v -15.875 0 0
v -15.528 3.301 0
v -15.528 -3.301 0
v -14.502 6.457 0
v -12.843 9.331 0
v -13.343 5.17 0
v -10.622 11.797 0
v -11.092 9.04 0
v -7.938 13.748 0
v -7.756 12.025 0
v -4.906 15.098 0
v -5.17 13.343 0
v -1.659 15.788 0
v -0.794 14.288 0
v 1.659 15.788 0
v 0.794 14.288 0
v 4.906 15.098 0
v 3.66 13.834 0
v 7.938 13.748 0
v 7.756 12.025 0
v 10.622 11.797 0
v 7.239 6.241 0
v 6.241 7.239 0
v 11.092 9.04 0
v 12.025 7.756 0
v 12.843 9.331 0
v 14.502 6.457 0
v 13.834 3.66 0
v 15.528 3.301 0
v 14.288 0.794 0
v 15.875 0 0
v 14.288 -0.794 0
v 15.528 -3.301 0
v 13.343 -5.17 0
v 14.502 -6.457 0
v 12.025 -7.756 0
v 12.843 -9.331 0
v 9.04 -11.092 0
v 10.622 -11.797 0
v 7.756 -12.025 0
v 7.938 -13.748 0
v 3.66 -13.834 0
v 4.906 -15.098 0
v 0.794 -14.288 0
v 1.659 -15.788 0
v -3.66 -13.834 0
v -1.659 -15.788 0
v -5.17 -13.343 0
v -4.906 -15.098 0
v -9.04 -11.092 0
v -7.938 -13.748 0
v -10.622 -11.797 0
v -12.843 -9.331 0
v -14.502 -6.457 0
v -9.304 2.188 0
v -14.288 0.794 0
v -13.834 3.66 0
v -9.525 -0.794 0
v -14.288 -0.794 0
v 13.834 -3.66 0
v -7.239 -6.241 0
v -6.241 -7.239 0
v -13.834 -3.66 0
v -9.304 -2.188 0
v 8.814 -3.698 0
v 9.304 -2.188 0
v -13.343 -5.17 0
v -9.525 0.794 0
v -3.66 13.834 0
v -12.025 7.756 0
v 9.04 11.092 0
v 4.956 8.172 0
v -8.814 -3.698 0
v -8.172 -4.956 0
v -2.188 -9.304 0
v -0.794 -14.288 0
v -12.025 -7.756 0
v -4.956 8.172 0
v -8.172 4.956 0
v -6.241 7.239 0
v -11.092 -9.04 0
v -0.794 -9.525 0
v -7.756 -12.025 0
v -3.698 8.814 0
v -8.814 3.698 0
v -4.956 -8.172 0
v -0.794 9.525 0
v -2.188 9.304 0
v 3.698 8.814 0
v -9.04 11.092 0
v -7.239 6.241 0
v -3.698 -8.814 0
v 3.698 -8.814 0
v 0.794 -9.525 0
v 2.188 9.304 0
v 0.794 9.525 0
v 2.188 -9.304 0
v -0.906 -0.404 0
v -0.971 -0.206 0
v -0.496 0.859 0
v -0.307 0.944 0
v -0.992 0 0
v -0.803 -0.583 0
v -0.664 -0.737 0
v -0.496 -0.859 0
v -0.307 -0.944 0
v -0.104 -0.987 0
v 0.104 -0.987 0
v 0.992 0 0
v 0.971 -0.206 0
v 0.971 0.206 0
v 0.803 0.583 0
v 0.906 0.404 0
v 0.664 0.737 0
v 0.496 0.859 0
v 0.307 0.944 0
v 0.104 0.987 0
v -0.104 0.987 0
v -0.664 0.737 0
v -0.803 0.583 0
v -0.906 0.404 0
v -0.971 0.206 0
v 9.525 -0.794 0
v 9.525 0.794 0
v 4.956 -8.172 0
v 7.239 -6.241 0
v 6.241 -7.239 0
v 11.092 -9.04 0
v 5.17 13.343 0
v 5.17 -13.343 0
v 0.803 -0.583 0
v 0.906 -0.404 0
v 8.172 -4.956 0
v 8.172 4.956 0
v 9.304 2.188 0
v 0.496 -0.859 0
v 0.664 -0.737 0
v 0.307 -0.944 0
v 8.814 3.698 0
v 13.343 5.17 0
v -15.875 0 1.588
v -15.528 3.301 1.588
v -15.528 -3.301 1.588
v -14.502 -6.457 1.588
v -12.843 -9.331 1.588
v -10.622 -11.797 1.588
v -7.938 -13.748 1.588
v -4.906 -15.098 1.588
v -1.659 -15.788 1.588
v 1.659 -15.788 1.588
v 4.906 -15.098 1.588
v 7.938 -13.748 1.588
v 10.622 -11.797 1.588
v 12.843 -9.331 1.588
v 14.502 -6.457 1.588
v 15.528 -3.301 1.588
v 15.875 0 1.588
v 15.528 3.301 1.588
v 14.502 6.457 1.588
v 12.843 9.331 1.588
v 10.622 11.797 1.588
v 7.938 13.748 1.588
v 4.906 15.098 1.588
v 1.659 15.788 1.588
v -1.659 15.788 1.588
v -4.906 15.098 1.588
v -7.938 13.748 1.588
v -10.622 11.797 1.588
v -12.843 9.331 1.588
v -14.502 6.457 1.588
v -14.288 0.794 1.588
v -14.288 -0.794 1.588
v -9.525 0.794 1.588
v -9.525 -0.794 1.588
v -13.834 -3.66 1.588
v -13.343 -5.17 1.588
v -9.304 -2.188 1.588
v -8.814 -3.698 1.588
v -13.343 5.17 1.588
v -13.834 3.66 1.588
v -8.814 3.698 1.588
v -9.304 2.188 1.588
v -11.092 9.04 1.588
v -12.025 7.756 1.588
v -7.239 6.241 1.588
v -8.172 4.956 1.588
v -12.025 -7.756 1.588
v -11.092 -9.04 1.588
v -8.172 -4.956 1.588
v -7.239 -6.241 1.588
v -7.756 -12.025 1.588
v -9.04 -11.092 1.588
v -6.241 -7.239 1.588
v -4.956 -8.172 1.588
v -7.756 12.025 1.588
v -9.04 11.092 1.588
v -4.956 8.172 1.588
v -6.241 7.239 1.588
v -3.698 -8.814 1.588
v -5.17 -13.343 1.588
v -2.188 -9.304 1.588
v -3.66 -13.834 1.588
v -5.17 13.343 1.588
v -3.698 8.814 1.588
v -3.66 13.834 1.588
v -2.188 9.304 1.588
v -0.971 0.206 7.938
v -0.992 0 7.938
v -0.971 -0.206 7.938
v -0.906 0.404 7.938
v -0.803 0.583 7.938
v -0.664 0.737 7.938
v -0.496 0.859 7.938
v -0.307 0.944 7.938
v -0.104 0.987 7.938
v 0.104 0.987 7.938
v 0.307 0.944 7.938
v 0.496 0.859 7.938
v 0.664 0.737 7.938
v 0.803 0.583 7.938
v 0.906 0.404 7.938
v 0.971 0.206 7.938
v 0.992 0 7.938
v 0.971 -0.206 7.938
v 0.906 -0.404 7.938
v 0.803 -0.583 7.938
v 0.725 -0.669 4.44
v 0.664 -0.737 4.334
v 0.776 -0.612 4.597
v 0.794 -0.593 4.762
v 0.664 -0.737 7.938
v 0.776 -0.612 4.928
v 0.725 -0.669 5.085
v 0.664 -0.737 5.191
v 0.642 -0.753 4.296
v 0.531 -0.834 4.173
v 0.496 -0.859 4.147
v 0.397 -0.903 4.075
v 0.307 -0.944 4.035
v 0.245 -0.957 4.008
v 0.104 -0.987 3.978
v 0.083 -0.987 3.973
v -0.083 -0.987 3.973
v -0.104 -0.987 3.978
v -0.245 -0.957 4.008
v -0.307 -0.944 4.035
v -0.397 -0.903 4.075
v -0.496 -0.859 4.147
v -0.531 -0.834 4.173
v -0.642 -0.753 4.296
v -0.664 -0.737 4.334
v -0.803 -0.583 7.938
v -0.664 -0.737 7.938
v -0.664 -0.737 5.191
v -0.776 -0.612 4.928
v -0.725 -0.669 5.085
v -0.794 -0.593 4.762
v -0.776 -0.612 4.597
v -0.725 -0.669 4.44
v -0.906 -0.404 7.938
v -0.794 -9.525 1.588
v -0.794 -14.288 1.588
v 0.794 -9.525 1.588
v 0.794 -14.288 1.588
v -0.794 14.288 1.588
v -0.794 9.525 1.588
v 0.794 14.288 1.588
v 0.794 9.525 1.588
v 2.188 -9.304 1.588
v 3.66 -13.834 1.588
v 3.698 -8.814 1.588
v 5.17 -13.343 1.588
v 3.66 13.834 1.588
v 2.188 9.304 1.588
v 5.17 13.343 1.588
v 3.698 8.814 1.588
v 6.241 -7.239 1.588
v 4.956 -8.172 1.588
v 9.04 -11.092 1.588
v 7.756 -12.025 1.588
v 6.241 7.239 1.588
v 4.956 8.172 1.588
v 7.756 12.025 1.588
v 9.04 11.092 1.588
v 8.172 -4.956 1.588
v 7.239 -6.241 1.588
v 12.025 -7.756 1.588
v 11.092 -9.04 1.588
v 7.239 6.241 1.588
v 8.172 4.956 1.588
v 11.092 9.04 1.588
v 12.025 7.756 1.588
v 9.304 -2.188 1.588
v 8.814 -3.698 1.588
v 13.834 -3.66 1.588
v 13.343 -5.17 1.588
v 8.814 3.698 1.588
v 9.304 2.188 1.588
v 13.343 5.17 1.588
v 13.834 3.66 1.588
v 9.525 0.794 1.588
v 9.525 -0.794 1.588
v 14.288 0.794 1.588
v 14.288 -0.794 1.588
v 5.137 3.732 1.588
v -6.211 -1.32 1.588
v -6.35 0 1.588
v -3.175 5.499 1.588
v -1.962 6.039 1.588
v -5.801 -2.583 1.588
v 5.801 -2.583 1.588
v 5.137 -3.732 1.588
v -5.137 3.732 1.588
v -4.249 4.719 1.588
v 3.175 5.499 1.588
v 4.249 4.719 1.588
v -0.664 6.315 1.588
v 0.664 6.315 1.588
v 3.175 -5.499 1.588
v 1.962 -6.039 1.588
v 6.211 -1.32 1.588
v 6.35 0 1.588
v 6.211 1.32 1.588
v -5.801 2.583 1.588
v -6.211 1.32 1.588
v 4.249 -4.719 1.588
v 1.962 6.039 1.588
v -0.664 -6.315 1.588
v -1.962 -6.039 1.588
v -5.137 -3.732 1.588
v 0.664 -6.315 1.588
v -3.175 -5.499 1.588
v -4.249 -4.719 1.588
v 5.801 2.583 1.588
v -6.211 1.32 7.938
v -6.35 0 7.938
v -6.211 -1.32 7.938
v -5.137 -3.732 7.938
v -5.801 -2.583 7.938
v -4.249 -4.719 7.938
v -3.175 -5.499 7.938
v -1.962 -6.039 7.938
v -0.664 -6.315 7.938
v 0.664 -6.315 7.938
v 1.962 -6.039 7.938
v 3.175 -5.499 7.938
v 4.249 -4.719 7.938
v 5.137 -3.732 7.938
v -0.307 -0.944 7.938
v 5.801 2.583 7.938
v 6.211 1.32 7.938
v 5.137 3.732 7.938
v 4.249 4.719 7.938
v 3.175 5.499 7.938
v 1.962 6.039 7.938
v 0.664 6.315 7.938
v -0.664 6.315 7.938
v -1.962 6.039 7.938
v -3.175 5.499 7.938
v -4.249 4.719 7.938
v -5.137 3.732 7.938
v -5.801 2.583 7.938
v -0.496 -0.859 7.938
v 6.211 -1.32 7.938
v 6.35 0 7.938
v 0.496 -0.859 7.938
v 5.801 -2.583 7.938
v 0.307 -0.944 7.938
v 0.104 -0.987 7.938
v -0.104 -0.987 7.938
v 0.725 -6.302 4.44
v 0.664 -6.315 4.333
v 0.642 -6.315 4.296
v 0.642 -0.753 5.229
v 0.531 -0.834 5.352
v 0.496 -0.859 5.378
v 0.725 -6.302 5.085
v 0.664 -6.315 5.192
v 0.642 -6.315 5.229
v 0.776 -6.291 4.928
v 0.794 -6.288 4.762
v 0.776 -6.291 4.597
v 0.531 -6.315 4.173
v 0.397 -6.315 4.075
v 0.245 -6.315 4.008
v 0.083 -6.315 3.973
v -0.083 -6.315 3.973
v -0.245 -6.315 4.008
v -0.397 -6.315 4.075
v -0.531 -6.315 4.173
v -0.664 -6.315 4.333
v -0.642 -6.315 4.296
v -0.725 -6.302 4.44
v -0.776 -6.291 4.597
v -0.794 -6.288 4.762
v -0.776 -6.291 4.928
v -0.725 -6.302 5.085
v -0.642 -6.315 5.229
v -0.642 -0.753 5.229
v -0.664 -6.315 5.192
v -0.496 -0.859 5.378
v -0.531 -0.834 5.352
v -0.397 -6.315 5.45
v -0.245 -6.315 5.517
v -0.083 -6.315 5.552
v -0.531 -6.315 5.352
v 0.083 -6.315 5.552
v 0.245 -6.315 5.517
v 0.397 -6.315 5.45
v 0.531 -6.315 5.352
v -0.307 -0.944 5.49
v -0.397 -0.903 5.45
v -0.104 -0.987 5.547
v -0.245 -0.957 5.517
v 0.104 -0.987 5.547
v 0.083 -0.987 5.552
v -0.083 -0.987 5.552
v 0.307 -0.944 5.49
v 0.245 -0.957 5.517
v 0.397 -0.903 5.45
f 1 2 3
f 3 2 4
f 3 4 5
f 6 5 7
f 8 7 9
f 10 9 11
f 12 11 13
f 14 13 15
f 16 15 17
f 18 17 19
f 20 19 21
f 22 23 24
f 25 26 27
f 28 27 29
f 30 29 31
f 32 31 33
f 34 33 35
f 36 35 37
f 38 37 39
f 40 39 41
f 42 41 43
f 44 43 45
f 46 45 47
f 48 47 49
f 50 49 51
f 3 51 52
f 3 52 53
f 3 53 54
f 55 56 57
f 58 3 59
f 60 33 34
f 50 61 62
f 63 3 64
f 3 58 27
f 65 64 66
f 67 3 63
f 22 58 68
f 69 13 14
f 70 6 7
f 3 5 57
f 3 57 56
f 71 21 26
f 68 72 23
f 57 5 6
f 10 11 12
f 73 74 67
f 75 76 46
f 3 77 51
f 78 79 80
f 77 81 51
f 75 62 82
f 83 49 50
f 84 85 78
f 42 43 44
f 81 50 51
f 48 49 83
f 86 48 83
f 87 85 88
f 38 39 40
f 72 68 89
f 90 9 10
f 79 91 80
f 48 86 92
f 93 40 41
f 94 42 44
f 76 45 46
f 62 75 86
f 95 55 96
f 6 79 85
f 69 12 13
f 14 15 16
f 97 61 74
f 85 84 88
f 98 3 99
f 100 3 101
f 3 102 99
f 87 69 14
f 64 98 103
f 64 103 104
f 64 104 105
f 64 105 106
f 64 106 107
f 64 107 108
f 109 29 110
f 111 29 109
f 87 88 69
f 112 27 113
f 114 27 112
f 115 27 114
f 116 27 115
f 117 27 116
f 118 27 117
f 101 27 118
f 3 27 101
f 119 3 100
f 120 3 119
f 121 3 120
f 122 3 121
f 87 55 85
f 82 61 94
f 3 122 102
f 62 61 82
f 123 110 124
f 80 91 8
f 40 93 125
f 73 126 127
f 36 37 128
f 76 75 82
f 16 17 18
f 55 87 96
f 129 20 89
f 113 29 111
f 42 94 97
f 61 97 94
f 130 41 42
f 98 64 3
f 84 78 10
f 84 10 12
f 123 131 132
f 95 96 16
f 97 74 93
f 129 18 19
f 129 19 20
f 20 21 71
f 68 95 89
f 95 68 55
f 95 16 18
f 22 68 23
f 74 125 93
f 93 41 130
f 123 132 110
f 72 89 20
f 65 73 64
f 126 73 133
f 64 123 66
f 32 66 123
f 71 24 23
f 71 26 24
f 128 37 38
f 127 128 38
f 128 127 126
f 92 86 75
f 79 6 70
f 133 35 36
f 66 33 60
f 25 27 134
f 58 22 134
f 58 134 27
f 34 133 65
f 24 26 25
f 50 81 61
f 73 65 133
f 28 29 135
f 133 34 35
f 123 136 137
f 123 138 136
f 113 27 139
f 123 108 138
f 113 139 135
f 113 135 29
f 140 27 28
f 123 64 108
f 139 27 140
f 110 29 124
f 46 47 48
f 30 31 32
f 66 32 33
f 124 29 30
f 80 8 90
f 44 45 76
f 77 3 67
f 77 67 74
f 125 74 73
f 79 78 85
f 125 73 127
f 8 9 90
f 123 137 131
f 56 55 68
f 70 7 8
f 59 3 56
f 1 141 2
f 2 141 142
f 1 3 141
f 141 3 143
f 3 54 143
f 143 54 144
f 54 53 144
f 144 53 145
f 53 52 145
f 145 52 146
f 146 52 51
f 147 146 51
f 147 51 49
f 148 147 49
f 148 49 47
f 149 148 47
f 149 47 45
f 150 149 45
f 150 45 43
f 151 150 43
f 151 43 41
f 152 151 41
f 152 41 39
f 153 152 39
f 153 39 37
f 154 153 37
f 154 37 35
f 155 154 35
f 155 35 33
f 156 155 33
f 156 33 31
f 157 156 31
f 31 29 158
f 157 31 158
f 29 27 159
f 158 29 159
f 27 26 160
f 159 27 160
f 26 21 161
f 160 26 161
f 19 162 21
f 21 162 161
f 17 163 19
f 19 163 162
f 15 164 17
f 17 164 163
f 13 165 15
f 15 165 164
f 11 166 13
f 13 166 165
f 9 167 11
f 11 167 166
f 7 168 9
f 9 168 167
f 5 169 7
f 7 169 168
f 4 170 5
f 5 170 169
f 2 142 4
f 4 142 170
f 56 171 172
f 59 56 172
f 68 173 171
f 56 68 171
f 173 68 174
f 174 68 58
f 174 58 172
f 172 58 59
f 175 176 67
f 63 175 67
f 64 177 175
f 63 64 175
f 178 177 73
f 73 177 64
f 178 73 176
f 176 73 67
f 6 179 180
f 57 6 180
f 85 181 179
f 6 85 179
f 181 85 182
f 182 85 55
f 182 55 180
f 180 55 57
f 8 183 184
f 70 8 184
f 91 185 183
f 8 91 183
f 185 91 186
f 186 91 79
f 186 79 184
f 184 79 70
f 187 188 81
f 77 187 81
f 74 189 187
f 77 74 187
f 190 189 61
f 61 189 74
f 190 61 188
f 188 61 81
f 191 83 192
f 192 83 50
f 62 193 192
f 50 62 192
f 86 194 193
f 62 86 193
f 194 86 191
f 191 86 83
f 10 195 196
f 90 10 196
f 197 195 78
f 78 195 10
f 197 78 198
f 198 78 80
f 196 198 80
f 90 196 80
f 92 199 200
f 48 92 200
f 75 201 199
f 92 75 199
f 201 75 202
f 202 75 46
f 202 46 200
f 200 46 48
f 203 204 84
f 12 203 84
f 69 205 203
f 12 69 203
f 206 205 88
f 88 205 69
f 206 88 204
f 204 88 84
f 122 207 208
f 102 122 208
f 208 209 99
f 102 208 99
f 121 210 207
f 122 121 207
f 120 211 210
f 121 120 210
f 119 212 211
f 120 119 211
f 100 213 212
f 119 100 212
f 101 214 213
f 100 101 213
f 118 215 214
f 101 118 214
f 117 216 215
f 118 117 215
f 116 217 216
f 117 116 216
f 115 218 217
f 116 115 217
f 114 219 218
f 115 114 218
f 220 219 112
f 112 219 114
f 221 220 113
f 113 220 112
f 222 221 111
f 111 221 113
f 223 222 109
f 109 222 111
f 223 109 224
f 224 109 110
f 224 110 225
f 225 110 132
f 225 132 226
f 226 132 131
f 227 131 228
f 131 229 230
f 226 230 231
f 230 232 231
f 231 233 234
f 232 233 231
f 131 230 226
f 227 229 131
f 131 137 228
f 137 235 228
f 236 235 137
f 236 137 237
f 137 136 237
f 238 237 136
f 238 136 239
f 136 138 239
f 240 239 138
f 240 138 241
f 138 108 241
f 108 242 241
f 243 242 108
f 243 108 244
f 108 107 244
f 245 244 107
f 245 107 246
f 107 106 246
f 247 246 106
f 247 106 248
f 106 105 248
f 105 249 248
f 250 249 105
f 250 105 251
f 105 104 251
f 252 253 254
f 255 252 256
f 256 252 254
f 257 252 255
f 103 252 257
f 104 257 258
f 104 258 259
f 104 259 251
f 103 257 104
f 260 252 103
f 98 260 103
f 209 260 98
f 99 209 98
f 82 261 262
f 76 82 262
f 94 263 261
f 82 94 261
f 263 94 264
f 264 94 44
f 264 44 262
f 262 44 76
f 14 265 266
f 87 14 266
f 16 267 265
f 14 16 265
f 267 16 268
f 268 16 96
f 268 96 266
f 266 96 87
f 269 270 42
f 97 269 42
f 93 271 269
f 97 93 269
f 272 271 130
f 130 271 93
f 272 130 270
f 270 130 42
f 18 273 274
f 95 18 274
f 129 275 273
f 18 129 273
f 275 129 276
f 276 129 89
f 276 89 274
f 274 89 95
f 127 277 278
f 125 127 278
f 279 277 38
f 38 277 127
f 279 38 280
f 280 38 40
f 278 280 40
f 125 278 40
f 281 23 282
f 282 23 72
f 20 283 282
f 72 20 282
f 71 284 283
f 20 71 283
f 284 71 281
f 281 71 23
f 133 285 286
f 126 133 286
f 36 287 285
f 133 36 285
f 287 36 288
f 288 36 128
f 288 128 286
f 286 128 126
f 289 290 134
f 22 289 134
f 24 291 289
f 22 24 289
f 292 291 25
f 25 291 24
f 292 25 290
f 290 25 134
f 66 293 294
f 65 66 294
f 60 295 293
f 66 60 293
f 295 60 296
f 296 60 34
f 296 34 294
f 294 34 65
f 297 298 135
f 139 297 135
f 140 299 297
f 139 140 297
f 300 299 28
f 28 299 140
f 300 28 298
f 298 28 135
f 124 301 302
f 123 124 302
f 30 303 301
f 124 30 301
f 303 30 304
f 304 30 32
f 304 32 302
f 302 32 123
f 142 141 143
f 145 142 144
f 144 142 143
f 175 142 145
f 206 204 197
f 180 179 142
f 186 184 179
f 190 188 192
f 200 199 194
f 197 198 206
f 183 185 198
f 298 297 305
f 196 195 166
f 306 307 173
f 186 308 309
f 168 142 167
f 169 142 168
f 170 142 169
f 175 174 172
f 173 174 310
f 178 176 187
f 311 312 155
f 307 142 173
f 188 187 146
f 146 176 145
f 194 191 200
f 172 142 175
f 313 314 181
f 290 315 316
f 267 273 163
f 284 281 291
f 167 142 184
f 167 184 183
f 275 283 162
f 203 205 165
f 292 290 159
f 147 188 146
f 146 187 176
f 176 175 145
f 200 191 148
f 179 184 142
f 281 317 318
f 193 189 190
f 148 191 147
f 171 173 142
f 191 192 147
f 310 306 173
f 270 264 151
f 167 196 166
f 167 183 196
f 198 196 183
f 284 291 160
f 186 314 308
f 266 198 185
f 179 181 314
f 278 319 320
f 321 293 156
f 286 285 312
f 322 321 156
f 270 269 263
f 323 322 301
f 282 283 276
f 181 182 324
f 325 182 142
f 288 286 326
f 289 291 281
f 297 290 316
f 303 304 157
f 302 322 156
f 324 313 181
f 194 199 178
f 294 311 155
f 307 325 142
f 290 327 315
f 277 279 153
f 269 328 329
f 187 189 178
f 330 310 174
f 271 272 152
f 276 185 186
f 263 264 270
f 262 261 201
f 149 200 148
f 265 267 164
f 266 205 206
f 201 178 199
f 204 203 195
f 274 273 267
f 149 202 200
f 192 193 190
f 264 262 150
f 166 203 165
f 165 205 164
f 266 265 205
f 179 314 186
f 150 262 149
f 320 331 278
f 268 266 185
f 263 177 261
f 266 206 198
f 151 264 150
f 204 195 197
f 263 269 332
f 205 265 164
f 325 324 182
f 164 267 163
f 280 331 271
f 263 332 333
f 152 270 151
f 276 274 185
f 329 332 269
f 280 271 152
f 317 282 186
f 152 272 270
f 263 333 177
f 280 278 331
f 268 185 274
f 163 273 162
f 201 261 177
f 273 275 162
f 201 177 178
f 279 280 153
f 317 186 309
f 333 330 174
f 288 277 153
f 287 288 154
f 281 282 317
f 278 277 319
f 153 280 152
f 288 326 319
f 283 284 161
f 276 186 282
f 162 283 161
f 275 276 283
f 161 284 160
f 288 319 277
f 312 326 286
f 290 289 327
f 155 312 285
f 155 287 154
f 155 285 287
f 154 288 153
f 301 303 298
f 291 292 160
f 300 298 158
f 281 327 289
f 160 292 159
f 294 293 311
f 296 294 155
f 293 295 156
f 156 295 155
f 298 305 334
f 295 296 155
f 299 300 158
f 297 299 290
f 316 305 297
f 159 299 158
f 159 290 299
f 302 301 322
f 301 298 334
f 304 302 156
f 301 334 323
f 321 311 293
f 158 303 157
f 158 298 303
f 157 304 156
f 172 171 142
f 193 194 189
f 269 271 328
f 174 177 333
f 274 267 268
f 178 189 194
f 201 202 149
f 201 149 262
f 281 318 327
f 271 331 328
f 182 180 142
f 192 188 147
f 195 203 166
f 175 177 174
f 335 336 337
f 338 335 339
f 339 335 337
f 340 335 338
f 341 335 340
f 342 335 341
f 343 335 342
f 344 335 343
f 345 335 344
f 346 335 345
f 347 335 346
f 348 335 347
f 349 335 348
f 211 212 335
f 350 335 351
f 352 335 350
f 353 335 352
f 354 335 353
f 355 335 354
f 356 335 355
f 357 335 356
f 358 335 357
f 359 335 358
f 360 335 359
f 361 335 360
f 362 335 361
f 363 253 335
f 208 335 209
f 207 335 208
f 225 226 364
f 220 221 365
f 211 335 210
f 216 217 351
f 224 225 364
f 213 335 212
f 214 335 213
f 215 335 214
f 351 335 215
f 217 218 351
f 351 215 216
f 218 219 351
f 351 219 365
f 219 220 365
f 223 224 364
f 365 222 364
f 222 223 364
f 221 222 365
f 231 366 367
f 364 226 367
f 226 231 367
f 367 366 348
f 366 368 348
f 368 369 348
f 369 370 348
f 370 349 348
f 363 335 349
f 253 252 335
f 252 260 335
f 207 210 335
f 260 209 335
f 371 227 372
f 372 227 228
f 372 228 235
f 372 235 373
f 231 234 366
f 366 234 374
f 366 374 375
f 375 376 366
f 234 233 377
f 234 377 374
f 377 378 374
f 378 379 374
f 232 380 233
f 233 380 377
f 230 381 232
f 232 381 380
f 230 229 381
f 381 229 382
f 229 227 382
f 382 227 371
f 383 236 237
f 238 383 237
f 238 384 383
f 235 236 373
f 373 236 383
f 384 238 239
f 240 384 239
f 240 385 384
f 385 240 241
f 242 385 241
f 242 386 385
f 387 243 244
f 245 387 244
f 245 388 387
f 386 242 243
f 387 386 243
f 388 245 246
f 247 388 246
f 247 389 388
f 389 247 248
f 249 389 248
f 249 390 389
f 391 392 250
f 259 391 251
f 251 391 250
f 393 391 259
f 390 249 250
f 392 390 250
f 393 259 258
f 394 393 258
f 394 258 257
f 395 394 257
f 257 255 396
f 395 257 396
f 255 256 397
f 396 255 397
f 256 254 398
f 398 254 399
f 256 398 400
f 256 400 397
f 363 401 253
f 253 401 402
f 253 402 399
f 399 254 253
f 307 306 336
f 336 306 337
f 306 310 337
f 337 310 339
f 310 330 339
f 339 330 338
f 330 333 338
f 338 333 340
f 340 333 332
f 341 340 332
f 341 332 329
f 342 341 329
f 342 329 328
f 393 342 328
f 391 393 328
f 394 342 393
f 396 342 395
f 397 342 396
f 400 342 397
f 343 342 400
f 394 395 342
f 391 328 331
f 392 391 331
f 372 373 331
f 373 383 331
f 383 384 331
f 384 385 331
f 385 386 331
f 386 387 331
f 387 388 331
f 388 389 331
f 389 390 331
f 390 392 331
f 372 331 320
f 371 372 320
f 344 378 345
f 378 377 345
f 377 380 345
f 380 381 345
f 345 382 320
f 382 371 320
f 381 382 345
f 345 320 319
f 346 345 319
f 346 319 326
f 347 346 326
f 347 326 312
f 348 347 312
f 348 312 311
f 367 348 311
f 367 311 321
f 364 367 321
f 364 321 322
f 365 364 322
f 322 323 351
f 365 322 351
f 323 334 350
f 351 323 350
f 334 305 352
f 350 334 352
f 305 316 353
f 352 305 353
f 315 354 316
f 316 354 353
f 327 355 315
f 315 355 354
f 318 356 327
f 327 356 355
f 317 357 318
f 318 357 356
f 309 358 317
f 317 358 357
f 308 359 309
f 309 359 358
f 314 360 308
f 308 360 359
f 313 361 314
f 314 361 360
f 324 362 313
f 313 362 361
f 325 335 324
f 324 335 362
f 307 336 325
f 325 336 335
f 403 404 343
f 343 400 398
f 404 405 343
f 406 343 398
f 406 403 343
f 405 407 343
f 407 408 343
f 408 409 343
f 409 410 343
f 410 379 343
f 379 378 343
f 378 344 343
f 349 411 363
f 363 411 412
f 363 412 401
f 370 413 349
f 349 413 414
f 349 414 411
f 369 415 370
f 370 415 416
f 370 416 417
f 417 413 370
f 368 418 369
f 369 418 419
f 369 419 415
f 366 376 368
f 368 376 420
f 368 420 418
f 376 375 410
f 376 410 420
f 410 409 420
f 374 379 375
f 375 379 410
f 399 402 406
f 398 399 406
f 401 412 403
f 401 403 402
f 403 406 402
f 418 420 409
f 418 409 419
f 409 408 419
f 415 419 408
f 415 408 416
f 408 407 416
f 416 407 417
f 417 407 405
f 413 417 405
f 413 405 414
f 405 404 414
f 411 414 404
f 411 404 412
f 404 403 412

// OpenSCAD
/*
 * Author: Steve Graves
*
 * This file is a parametric file to create an encoder wheel for an optical sensor
 * for a servo motor
 */

//This factor controls the accuracy of the compile. 
//0.01 is very accurate at the expense of speed of compile
//Comment factor out to increase compile speed when proofing design
//Uncomment before generating stl file
$fs = 0.01;

m=25.4; //The program operates in mm. This factor allows us to work in inches.

discHeight = m * 1/16; //Height of encoding disc
discDia = m * 1.25; // Diameter of encoding disc
totalHeight = m * 5/16; // Total height of mount and disc
mountDia = m * 1/2; // Diameter of mount where set screw is threaded
shaftDia = m * 5/64; // Diameter of hole for motor shaft
setScrewHeight = m * 3/16; // Height of set screw above base of disc
setScrewDia = m * 1 / 16; // Diameter of set screw hole
slotWidth = m * 1/16;  //Width of optical slot
slotLength = m * 3/16; //Length of optical slot
slotDist = m * 3/8; // Distance from center of shaft to inside edge of slot

difference(){
	union(){
		cylinder(h=discHeight, r = discDia/2); //Create disc
		cylinder(h=totalHeight, r = mountDia/2); //Create mount
	}
	cylinder(h= 2 * totalHeight, r=shaftDia/2); // Drill hole for shaft
	//Drill hole for set screw
	translate([0,0,setScrewHeight])rotate([90,0,0])cylinder(h=mountDia, r=setScrewDia/2);
	for(i=[0:19]){
		rotate([0,0,i*18])translate([-slotWidth/2, slotDist,0])cube(size=[slotWidth, slotLength, m*0.125]);
	}
}
